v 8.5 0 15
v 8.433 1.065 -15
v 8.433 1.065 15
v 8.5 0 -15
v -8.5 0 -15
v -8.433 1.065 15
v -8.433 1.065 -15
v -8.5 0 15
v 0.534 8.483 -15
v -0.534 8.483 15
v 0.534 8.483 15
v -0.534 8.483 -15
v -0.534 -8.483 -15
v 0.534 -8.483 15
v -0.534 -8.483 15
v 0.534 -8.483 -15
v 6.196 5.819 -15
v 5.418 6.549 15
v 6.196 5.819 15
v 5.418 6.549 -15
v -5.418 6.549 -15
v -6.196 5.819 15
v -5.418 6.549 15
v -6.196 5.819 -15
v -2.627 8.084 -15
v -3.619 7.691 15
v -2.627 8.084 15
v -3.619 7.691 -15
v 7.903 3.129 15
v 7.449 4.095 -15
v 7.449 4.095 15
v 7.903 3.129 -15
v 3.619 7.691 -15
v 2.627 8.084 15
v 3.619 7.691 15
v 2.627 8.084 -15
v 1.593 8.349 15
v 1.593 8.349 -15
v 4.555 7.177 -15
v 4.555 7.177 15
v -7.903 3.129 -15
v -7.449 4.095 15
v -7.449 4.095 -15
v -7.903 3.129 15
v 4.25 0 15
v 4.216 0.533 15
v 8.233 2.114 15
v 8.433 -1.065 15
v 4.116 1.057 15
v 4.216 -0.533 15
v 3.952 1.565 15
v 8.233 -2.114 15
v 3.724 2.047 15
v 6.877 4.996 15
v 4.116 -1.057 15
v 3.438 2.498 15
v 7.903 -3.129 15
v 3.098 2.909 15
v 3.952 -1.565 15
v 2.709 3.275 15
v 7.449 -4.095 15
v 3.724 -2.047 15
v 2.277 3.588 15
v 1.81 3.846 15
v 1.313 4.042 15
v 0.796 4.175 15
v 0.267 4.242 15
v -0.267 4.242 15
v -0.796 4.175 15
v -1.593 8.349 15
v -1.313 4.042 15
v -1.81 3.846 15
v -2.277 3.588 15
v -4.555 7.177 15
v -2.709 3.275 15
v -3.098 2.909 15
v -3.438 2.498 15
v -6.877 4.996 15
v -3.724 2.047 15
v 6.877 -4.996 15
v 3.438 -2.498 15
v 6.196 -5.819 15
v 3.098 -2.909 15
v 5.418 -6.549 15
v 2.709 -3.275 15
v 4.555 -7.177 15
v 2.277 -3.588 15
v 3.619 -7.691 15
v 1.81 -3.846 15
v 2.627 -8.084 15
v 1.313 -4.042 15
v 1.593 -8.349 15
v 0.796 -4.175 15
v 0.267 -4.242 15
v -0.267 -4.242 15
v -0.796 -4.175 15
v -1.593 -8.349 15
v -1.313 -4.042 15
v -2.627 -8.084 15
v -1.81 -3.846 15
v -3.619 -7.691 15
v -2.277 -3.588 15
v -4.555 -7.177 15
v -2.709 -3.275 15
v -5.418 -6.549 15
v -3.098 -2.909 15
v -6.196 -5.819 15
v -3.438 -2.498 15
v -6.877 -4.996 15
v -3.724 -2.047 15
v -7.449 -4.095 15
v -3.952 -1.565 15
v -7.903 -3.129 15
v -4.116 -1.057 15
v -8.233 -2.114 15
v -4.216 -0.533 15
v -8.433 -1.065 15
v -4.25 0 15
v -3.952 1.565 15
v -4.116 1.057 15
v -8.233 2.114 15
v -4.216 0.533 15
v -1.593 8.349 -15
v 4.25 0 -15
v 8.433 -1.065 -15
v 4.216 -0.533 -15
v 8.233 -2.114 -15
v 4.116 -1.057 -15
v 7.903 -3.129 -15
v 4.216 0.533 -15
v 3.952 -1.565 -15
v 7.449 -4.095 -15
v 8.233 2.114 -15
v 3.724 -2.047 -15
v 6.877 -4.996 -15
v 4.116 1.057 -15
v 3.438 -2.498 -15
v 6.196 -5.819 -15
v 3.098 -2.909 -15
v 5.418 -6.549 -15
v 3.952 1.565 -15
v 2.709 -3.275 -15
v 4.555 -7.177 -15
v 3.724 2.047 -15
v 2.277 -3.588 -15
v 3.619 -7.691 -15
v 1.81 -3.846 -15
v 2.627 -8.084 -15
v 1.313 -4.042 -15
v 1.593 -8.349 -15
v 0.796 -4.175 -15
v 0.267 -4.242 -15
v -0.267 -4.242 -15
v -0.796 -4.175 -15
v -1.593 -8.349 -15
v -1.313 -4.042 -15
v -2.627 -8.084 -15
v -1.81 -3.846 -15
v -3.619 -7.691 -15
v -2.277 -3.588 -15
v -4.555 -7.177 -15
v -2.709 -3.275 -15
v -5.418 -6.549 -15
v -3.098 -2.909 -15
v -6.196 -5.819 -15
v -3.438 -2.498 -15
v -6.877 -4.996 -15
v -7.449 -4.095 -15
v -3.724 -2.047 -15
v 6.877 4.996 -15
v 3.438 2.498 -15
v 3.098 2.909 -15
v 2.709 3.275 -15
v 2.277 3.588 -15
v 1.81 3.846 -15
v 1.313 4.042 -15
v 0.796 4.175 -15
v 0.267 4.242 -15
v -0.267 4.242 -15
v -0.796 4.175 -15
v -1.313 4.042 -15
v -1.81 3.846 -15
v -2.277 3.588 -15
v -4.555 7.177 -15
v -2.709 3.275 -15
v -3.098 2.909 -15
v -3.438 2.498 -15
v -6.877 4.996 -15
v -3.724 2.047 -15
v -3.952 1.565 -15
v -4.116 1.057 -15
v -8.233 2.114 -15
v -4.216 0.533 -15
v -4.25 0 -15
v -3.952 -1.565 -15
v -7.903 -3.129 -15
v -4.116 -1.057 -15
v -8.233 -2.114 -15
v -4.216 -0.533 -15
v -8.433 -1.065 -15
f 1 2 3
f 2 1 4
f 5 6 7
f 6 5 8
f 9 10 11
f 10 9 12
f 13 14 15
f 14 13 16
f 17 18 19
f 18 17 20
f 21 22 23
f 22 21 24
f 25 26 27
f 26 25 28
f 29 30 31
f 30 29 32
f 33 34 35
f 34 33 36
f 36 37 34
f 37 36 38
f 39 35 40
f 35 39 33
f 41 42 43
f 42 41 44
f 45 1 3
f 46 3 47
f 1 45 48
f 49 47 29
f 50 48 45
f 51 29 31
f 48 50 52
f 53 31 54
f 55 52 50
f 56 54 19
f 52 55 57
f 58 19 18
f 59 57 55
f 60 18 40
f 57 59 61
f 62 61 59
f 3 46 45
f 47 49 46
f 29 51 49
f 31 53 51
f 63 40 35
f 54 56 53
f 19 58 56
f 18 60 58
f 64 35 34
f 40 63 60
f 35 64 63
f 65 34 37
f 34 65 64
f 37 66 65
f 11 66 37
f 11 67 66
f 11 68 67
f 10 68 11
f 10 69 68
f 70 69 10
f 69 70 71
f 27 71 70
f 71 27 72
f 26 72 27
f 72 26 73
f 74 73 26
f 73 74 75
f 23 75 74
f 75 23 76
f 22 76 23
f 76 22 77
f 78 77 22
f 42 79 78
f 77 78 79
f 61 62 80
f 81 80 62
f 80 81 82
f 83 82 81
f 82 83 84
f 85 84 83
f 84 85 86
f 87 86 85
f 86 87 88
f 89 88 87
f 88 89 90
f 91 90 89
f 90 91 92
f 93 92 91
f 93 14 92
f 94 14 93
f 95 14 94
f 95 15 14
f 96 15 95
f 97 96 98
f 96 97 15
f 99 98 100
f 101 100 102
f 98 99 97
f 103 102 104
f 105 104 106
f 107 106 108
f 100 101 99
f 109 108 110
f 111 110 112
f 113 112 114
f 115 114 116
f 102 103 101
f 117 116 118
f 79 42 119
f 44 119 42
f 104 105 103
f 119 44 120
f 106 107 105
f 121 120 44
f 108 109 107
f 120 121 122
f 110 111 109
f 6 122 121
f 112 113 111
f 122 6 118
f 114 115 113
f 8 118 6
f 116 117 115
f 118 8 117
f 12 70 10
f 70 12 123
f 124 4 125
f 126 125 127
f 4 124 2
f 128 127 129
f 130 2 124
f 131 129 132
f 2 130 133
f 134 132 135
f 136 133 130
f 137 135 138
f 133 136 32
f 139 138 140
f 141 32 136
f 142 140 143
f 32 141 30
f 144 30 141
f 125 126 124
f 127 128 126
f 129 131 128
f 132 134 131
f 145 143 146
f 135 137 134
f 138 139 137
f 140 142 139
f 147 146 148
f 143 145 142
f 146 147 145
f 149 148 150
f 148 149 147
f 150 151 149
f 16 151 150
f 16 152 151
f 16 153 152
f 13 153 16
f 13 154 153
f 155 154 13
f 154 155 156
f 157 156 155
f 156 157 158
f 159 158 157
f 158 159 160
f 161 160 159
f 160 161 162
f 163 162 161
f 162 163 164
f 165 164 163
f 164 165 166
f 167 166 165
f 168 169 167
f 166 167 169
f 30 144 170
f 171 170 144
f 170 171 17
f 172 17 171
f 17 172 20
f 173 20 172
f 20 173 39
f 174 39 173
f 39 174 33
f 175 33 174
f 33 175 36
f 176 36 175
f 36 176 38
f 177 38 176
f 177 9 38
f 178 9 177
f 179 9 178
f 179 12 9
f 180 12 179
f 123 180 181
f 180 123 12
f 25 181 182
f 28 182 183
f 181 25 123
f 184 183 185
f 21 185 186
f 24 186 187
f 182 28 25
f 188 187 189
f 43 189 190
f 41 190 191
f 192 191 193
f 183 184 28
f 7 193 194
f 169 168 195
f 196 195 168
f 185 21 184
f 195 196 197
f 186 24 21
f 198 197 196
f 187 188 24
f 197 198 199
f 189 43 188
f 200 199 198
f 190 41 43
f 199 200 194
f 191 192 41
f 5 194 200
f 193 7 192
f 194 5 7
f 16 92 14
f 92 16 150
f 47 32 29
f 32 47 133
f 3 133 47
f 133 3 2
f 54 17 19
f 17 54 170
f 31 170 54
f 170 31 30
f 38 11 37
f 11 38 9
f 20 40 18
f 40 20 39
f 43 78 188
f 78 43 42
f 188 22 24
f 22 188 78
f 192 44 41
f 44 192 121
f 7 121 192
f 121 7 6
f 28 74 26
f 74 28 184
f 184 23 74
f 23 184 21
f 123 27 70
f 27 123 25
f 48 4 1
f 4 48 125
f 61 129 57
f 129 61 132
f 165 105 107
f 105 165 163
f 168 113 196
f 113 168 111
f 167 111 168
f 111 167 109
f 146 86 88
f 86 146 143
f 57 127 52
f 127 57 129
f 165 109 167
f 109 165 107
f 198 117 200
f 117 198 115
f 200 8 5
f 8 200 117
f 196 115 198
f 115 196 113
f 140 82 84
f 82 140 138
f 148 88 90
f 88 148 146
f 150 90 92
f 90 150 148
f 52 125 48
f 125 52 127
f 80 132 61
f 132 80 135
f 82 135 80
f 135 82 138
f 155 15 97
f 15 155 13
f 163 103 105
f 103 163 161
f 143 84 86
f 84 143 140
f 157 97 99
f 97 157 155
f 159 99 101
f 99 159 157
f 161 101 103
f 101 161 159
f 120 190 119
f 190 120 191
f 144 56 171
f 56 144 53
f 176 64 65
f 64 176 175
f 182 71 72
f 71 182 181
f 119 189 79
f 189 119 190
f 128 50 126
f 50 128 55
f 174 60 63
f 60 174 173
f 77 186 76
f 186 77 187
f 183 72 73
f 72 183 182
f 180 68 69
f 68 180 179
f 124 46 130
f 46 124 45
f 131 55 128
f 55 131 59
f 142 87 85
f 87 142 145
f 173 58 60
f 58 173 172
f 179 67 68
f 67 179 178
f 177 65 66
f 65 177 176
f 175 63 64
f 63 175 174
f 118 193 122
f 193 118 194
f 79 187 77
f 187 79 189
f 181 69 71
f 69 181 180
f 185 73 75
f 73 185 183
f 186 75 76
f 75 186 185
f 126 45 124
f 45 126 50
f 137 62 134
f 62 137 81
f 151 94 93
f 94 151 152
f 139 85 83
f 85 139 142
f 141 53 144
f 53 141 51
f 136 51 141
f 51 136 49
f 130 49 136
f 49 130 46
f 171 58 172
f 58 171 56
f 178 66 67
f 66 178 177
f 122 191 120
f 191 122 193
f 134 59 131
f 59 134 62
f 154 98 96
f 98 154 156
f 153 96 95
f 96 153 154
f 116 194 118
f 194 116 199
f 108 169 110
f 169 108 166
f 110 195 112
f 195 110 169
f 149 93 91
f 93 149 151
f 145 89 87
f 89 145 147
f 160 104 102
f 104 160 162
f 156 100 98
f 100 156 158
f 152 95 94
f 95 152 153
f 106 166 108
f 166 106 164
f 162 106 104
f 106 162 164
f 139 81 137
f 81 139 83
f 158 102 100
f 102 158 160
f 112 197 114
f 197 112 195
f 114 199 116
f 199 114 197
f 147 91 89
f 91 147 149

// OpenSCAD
$fn = 50;


difference() {
	union() {
		translate(v = [0, 0, -15.0000000000]) {
			cylinder(h = 30, r = 8.5000000000);
		}
	}
	union() {
		translate(v = [0, 0, -100.0000000000]) {
			cylinder(h = 200, r = 4.2500000000);
		}
	}
}
